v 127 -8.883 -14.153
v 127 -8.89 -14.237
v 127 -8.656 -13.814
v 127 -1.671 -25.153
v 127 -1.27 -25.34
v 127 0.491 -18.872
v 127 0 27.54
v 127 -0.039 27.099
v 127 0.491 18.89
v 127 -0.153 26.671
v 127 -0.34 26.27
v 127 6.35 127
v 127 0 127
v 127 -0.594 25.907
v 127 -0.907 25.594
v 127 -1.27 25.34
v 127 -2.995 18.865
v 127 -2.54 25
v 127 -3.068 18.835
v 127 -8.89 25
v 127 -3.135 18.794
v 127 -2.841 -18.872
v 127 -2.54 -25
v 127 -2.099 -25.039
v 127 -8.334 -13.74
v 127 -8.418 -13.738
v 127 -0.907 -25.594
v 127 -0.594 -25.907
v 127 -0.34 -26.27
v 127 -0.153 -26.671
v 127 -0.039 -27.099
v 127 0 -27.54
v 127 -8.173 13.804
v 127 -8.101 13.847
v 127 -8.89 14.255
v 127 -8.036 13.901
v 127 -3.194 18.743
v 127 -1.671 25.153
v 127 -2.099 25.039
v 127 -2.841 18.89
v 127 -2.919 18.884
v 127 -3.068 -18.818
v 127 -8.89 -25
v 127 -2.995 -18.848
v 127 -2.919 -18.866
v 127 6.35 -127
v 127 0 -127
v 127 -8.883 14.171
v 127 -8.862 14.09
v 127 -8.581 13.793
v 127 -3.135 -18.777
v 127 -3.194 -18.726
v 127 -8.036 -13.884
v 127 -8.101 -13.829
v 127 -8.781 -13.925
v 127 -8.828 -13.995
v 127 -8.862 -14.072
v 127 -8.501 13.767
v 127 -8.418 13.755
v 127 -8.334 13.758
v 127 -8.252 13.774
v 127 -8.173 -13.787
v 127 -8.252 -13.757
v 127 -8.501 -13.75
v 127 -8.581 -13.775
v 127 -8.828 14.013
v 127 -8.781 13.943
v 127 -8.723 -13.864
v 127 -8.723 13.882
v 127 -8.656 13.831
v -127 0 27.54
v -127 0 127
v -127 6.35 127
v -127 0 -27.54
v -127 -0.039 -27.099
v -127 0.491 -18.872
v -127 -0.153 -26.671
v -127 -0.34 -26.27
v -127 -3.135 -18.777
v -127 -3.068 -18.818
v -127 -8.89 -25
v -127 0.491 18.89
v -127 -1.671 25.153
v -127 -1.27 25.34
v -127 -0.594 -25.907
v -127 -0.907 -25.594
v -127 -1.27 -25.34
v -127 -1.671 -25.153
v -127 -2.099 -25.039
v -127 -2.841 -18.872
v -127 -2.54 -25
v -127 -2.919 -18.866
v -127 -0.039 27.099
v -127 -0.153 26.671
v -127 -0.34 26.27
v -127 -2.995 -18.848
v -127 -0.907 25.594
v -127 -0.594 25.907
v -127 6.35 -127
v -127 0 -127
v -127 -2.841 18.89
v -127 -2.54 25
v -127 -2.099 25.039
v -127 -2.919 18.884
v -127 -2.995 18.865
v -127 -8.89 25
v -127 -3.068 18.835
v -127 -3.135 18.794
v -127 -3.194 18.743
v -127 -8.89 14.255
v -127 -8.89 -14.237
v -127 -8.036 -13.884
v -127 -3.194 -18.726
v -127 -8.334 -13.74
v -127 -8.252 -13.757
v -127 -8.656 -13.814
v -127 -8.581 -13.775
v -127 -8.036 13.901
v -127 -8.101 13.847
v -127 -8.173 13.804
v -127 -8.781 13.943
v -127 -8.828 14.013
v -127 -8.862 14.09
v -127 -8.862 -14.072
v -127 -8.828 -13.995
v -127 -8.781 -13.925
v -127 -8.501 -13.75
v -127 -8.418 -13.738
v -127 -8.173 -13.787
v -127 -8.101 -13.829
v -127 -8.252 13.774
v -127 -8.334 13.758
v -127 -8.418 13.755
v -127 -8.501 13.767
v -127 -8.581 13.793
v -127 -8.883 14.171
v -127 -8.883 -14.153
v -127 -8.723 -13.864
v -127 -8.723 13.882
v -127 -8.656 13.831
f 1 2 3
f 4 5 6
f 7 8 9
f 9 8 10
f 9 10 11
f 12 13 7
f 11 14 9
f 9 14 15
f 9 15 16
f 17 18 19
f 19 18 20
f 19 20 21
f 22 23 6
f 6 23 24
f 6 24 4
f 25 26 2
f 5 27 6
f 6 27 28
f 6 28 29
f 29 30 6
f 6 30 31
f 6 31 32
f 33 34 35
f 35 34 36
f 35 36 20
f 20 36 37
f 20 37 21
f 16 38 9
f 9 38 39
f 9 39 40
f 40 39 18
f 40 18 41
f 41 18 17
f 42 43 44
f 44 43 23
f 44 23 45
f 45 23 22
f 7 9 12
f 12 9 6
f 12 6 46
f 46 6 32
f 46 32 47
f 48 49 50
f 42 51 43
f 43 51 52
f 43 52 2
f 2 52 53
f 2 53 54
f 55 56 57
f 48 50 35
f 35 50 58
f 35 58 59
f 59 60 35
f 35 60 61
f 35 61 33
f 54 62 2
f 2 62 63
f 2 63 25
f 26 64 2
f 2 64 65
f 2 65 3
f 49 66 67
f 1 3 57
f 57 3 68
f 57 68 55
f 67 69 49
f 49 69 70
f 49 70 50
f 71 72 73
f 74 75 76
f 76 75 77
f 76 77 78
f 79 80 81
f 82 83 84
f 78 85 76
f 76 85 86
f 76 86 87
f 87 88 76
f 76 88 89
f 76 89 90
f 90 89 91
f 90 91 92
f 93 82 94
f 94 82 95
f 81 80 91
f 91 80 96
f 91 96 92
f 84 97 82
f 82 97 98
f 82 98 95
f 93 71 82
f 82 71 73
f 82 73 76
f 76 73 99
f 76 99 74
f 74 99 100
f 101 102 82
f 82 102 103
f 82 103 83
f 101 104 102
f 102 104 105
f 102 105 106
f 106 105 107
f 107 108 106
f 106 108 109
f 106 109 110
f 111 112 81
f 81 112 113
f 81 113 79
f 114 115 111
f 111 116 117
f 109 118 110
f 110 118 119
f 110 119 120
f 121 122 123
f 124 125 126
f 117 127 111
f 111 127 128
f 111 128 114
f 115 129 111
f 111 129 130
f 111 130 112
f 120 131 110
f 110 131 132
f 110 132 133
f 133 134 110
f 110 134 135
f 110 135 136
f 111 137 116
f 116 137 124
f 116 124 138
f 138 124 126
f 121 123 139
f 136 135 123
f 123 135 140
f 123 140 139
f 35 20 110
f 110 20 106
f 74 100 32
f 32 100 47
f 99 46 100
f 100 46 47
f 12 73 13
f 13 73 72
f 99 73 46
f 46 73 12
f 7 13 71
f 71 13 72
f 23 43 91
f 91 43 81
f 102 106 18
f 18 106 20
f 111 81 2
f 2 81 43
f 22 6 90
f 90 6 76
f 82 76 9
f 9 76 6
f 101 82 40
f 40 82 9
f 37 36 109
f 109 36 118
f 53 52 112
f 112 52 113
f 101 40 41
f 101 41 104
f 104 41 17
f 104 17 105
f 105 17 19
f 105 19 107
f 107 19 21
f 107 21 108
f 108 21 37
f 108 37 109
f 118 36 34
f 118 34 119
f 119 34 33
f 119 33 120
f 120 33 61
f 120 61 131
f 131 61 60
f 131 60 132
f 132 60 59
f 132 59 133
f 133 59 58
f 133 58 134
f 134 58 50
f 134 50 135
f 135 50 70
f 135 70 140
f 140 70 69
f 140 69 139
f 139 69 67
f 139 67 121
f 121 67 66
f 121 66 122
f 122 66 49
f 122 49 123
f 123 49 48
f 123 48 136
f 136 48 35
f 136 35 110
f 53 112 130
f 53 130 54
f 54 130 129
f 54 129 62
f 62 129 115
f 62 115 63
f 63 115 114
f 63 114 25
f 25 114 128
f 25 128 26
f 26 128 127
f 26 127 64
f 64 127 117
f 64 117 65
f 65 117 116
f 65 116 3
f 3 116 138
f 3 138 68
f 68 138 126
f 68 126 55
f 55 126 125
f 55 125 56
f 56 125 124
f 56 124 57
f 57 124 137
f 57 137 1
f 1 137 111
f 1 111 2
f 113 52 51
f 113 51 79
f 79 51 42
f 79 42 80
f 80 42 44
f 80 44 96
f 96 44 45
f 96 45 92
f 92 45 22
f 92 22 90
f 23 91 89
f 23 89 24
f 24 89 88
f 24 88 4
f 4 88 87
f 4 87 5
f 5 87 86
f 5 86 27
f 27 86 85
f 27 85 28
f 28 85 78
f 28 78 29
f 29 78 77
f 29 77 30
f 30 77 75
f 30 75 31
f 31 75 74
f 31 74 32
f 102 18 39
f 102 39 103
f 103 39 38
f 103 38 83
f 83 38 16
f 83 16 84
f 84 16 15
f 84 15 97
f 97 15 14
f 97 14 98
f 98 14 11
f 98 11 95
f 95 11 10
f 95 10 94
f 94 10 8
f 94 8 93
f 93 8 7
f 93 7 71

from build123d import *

# Parameters (mm, degrees)
SKETCH1_W          = 254
SKETCH1_H          = 254
BASE_DEPTH         = 6.35
SKETCH3_W          = 254
SKETCH3_H          = 50
KEY_MATERIAL_DEPTH = 8.89
KEY_SLIDE_DEPTH    = 285.119749578
KEY_CONTOURING_R   = 0.5
FILLET5_R          = 2.54


with BuildPart() as part:
    # Sketch1 → Base (new body)
    with BuildSketch(Plane(origin=(0, 0, 0), x_dir=(1, 0, 0), z_dir=(0, 1, 0))):
        Rectangle(SKETCH1_W, SKETCH1_H)
    extrude(amount=BASE_DEPTH)

    # Sketch3 → Key Material (add)
    with BuildSketch(Plane.XZ):
        Rectangle(SKETCH3_W, SKETCH3_H)
    extrude(amount=KEY_MATERIAL_DEPTH)

    # Sketch10 → Key Slide (cut, through all)
    with BuildSketch(Plane.ZY.offset(127)):
        Polygon((18.88975891, -3.047815367), (12.666574277, -9.271), (-12.649056457, -9.271), (-18.87224109, -3.047815367), (-18.87224109, 0.491), (18.88975891, 0.491), align=None)
    extrude(amount=-KEY_SLIDE_DEPTH, mode=Mode.SUBTRACT)

    # Key Contouring
    key_contouring_edges = [part.edges().sort_by_distance(p)[0] for p in [
        (0, -8.89, -13.030056457),
        (0, -8.89, 13.047574277),
        (0, -3.047815367, -18.87224109),
        (0, -3.047815367, 18.88975891),
    ]]
    fillet(key_contouring_edges, radius=KEY_CONTOURING_R)

    # Fillet5
    fillet5_edges = [part.edges().sort_by_distance(p)[0] for p in [
        (0, 0, -25),
        (0, 0, 25),
    ]]
    fillet(fillet5_edges, radius=FILLET5_R)


solid = part.part
